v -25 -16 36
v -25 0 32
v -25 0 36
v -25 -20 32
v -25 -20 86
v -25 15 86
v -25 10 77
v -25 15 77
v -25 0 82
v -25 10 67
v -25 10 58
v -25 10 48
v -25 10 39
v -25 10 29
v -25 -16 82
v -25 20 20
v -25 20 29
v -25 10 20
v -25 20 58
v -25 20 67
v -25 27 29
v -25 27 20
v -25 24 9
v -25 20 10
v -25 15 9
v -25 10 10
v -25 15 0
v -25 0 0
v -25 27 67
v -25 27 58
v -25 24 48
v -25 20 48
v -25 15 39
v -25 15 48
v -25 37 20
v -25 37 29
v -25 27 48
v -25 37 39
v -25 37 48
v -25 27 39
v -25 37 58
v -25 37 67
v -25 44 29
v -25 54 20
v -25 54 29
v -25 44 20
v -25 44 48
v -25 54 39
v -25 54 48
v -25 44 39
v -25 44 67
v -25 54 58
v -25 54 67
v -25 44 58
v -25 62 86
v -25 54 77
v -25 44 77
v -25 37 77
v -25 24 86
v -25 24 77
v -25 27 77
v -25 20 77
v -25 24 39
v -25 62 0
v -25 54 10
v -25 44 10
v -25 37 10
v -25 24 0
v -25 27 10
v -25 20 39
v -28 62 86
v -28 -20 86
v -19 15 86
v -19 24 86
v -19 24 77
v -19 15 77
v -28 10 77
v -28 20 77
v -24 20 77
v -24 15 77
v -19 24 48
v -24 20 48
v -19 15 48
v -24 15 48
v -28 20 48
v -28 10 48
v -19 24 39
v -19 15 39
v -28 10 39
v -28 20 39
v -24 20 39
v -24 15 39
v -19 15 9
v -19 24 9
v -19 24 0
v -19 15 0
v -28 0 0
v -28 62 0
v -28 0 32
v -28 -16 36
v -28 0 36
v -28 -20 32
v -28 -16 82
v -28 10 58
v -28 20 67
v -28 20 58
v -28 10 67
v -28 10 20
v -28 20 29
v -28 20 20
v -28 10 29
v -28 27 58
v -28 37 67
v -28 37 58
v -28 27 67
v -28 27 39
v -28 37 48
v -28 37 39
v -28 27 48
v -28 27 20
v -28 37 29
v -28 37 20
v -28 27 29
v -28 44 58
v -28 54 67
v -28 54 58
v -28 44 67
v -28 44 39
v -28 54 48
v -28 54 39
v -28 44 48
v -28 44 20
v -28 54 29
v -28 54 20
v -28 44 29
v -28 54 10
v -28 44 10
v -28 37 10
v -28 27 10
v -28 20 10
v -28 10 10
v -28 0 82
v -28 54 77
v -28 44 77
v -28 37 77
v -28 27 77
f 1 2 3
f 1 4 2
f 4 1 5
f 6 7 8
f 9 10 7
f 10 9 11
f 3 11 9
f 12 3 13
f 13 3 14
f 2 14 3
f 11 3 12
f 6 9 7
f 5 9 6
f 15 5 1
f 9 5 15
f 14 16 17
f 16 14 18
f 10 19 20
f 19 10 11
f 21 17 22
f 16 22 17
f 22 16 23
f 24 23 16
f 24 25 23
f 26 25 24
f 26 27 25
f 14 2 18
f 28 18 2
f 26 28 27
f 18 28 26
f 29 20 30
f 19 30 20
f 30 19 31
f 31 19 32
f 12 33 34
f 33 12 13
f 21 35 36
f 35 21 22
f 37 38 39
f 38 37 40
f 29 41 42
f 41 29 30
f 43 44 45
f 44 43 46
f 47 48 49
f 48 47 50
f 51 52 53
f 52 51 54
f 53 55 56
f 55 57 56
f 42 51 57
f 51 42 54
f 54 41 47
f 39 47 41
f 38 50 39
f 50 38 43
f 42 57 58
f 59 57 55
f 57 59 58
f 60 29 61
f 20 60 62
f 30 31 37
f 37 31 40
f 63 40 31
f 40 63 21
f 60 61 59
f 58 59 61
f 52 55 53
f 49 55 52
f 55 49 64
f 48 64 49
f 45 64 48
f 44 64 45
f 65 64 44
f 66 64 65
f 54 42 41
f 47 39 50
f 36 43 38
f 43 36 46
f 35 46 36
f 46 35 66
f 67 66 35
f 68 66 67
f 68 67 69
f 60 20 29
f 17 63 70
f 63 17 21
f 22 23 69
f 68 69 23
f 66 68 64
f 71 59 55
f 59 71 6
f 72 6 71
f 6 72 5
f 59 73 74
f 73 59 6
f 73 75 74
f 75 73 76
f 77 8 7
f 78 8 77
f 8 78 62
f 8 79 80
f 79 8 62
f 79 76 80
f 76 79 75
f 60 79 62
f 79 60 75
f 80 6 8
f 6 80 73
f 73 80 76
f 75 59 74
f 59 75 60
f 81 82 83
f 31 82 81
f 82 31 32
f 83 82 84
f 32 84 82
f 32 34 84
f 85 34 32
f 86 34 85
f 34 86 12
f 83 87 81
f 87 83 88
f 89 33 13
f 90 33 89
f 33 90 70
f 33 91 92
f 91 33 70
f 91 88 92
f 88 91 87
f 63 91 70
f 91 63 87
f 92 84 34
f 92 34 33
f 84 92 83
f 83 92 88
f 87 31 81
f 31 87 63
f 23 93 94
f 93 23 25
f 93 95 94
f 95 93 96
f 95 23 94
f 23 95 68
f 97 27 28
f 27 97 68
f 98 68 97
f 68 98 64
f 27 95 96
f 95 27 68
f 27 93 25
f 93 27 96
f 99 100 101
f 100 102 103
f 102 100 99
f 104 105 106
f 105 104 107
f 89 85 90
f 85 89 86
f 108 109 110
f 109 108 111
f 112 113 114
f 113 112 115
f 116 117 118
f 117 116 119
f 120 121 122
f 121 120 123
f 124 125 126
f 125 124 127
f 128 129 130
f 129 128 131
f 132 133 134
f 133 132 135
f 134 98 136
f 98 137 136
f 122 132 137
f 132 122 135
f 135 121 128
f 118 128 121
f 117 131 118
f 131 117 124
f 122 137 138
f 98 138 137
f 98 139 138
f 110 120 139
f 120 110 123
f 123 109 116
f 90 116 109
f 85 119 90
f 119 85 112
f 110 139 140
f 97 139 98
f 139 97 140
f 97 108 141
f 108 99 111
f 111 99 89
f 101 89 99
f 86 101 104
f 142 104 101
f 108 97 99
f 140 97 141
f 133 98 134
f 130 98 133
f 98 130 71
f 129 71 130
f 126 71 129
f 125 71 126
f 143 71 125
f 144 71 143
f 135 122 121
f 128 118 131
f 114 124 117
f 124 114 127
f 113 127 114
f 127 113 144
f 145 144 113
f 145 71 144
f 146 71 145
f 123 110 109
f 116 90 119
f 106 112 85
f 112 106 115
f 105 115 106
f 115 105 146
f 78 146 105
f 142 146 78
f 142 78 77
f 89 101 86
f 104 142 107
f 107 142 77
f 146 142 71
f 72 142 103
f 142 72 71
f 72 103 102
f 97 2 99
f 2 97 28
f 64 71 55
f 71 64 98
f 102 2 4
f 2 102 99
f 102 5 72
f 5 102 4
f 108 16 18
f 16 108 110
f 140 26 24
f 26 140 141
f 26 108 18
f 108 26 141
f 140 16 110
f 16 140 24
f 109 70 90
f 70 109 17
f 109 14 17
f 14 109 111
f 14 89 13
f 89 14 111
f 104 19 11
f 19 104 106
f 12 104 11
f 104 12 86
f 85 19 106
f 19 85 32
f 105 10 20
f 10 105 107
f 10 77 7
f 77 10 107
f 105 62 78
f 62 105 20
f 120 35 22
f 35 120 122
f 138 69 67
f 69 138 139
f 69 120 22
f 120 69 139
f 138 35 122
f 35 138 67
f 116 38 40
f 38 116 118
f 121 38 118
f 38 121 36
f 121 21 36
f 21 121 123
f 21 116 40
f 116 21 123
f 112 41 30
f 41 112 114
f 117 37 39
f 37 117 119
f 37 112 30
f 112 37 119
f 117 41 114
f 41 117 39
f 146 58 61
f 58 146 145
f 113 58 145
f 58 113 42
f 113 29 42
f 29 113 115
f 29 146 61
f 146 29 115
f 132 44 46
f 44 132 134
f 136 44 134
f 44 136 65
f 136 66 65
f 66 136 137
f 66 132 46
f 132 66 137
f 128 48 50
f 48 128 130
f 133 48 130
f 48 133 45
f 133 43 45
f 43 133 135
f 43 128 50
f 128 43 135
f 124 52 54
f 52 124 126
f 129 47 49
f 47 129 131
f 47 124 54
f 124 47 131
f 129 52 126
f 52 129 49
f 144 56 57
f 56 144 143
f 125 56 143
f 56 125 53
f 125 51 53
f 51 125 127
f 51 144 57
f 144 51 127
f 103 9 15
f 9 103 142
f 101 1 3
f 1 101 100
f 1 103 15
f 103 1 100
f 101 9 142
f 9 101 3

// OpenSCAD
difference() {
    union() {
        translate([-25, 15, 77]) {
            cube([6, 9, 9]);
        }
        translate([-25, 15, 39]) {
            cube([6, 9, 9]);
        }
        translate([-25, 15, 0]) {
            cube([6, 9, 9]);
        }
        
        translate([-28, 0, 0]) { 
            cube([3, 62, 86]);
        }
        translate([-28, -20, 32]) {
            cube([3, 20, 54]);
        }
    }
    
    translate([-65, -16, 36]) {
        cube([50, 16, 46]);
    }
    
    for (a = [10 : 17 : 45]) {
        for (b = [10 : 19 : 85]) {
            translate([-30, 0 + a, 0 + b]) {
                cube([6, 10, 10]);
            }
        }
    }
}
